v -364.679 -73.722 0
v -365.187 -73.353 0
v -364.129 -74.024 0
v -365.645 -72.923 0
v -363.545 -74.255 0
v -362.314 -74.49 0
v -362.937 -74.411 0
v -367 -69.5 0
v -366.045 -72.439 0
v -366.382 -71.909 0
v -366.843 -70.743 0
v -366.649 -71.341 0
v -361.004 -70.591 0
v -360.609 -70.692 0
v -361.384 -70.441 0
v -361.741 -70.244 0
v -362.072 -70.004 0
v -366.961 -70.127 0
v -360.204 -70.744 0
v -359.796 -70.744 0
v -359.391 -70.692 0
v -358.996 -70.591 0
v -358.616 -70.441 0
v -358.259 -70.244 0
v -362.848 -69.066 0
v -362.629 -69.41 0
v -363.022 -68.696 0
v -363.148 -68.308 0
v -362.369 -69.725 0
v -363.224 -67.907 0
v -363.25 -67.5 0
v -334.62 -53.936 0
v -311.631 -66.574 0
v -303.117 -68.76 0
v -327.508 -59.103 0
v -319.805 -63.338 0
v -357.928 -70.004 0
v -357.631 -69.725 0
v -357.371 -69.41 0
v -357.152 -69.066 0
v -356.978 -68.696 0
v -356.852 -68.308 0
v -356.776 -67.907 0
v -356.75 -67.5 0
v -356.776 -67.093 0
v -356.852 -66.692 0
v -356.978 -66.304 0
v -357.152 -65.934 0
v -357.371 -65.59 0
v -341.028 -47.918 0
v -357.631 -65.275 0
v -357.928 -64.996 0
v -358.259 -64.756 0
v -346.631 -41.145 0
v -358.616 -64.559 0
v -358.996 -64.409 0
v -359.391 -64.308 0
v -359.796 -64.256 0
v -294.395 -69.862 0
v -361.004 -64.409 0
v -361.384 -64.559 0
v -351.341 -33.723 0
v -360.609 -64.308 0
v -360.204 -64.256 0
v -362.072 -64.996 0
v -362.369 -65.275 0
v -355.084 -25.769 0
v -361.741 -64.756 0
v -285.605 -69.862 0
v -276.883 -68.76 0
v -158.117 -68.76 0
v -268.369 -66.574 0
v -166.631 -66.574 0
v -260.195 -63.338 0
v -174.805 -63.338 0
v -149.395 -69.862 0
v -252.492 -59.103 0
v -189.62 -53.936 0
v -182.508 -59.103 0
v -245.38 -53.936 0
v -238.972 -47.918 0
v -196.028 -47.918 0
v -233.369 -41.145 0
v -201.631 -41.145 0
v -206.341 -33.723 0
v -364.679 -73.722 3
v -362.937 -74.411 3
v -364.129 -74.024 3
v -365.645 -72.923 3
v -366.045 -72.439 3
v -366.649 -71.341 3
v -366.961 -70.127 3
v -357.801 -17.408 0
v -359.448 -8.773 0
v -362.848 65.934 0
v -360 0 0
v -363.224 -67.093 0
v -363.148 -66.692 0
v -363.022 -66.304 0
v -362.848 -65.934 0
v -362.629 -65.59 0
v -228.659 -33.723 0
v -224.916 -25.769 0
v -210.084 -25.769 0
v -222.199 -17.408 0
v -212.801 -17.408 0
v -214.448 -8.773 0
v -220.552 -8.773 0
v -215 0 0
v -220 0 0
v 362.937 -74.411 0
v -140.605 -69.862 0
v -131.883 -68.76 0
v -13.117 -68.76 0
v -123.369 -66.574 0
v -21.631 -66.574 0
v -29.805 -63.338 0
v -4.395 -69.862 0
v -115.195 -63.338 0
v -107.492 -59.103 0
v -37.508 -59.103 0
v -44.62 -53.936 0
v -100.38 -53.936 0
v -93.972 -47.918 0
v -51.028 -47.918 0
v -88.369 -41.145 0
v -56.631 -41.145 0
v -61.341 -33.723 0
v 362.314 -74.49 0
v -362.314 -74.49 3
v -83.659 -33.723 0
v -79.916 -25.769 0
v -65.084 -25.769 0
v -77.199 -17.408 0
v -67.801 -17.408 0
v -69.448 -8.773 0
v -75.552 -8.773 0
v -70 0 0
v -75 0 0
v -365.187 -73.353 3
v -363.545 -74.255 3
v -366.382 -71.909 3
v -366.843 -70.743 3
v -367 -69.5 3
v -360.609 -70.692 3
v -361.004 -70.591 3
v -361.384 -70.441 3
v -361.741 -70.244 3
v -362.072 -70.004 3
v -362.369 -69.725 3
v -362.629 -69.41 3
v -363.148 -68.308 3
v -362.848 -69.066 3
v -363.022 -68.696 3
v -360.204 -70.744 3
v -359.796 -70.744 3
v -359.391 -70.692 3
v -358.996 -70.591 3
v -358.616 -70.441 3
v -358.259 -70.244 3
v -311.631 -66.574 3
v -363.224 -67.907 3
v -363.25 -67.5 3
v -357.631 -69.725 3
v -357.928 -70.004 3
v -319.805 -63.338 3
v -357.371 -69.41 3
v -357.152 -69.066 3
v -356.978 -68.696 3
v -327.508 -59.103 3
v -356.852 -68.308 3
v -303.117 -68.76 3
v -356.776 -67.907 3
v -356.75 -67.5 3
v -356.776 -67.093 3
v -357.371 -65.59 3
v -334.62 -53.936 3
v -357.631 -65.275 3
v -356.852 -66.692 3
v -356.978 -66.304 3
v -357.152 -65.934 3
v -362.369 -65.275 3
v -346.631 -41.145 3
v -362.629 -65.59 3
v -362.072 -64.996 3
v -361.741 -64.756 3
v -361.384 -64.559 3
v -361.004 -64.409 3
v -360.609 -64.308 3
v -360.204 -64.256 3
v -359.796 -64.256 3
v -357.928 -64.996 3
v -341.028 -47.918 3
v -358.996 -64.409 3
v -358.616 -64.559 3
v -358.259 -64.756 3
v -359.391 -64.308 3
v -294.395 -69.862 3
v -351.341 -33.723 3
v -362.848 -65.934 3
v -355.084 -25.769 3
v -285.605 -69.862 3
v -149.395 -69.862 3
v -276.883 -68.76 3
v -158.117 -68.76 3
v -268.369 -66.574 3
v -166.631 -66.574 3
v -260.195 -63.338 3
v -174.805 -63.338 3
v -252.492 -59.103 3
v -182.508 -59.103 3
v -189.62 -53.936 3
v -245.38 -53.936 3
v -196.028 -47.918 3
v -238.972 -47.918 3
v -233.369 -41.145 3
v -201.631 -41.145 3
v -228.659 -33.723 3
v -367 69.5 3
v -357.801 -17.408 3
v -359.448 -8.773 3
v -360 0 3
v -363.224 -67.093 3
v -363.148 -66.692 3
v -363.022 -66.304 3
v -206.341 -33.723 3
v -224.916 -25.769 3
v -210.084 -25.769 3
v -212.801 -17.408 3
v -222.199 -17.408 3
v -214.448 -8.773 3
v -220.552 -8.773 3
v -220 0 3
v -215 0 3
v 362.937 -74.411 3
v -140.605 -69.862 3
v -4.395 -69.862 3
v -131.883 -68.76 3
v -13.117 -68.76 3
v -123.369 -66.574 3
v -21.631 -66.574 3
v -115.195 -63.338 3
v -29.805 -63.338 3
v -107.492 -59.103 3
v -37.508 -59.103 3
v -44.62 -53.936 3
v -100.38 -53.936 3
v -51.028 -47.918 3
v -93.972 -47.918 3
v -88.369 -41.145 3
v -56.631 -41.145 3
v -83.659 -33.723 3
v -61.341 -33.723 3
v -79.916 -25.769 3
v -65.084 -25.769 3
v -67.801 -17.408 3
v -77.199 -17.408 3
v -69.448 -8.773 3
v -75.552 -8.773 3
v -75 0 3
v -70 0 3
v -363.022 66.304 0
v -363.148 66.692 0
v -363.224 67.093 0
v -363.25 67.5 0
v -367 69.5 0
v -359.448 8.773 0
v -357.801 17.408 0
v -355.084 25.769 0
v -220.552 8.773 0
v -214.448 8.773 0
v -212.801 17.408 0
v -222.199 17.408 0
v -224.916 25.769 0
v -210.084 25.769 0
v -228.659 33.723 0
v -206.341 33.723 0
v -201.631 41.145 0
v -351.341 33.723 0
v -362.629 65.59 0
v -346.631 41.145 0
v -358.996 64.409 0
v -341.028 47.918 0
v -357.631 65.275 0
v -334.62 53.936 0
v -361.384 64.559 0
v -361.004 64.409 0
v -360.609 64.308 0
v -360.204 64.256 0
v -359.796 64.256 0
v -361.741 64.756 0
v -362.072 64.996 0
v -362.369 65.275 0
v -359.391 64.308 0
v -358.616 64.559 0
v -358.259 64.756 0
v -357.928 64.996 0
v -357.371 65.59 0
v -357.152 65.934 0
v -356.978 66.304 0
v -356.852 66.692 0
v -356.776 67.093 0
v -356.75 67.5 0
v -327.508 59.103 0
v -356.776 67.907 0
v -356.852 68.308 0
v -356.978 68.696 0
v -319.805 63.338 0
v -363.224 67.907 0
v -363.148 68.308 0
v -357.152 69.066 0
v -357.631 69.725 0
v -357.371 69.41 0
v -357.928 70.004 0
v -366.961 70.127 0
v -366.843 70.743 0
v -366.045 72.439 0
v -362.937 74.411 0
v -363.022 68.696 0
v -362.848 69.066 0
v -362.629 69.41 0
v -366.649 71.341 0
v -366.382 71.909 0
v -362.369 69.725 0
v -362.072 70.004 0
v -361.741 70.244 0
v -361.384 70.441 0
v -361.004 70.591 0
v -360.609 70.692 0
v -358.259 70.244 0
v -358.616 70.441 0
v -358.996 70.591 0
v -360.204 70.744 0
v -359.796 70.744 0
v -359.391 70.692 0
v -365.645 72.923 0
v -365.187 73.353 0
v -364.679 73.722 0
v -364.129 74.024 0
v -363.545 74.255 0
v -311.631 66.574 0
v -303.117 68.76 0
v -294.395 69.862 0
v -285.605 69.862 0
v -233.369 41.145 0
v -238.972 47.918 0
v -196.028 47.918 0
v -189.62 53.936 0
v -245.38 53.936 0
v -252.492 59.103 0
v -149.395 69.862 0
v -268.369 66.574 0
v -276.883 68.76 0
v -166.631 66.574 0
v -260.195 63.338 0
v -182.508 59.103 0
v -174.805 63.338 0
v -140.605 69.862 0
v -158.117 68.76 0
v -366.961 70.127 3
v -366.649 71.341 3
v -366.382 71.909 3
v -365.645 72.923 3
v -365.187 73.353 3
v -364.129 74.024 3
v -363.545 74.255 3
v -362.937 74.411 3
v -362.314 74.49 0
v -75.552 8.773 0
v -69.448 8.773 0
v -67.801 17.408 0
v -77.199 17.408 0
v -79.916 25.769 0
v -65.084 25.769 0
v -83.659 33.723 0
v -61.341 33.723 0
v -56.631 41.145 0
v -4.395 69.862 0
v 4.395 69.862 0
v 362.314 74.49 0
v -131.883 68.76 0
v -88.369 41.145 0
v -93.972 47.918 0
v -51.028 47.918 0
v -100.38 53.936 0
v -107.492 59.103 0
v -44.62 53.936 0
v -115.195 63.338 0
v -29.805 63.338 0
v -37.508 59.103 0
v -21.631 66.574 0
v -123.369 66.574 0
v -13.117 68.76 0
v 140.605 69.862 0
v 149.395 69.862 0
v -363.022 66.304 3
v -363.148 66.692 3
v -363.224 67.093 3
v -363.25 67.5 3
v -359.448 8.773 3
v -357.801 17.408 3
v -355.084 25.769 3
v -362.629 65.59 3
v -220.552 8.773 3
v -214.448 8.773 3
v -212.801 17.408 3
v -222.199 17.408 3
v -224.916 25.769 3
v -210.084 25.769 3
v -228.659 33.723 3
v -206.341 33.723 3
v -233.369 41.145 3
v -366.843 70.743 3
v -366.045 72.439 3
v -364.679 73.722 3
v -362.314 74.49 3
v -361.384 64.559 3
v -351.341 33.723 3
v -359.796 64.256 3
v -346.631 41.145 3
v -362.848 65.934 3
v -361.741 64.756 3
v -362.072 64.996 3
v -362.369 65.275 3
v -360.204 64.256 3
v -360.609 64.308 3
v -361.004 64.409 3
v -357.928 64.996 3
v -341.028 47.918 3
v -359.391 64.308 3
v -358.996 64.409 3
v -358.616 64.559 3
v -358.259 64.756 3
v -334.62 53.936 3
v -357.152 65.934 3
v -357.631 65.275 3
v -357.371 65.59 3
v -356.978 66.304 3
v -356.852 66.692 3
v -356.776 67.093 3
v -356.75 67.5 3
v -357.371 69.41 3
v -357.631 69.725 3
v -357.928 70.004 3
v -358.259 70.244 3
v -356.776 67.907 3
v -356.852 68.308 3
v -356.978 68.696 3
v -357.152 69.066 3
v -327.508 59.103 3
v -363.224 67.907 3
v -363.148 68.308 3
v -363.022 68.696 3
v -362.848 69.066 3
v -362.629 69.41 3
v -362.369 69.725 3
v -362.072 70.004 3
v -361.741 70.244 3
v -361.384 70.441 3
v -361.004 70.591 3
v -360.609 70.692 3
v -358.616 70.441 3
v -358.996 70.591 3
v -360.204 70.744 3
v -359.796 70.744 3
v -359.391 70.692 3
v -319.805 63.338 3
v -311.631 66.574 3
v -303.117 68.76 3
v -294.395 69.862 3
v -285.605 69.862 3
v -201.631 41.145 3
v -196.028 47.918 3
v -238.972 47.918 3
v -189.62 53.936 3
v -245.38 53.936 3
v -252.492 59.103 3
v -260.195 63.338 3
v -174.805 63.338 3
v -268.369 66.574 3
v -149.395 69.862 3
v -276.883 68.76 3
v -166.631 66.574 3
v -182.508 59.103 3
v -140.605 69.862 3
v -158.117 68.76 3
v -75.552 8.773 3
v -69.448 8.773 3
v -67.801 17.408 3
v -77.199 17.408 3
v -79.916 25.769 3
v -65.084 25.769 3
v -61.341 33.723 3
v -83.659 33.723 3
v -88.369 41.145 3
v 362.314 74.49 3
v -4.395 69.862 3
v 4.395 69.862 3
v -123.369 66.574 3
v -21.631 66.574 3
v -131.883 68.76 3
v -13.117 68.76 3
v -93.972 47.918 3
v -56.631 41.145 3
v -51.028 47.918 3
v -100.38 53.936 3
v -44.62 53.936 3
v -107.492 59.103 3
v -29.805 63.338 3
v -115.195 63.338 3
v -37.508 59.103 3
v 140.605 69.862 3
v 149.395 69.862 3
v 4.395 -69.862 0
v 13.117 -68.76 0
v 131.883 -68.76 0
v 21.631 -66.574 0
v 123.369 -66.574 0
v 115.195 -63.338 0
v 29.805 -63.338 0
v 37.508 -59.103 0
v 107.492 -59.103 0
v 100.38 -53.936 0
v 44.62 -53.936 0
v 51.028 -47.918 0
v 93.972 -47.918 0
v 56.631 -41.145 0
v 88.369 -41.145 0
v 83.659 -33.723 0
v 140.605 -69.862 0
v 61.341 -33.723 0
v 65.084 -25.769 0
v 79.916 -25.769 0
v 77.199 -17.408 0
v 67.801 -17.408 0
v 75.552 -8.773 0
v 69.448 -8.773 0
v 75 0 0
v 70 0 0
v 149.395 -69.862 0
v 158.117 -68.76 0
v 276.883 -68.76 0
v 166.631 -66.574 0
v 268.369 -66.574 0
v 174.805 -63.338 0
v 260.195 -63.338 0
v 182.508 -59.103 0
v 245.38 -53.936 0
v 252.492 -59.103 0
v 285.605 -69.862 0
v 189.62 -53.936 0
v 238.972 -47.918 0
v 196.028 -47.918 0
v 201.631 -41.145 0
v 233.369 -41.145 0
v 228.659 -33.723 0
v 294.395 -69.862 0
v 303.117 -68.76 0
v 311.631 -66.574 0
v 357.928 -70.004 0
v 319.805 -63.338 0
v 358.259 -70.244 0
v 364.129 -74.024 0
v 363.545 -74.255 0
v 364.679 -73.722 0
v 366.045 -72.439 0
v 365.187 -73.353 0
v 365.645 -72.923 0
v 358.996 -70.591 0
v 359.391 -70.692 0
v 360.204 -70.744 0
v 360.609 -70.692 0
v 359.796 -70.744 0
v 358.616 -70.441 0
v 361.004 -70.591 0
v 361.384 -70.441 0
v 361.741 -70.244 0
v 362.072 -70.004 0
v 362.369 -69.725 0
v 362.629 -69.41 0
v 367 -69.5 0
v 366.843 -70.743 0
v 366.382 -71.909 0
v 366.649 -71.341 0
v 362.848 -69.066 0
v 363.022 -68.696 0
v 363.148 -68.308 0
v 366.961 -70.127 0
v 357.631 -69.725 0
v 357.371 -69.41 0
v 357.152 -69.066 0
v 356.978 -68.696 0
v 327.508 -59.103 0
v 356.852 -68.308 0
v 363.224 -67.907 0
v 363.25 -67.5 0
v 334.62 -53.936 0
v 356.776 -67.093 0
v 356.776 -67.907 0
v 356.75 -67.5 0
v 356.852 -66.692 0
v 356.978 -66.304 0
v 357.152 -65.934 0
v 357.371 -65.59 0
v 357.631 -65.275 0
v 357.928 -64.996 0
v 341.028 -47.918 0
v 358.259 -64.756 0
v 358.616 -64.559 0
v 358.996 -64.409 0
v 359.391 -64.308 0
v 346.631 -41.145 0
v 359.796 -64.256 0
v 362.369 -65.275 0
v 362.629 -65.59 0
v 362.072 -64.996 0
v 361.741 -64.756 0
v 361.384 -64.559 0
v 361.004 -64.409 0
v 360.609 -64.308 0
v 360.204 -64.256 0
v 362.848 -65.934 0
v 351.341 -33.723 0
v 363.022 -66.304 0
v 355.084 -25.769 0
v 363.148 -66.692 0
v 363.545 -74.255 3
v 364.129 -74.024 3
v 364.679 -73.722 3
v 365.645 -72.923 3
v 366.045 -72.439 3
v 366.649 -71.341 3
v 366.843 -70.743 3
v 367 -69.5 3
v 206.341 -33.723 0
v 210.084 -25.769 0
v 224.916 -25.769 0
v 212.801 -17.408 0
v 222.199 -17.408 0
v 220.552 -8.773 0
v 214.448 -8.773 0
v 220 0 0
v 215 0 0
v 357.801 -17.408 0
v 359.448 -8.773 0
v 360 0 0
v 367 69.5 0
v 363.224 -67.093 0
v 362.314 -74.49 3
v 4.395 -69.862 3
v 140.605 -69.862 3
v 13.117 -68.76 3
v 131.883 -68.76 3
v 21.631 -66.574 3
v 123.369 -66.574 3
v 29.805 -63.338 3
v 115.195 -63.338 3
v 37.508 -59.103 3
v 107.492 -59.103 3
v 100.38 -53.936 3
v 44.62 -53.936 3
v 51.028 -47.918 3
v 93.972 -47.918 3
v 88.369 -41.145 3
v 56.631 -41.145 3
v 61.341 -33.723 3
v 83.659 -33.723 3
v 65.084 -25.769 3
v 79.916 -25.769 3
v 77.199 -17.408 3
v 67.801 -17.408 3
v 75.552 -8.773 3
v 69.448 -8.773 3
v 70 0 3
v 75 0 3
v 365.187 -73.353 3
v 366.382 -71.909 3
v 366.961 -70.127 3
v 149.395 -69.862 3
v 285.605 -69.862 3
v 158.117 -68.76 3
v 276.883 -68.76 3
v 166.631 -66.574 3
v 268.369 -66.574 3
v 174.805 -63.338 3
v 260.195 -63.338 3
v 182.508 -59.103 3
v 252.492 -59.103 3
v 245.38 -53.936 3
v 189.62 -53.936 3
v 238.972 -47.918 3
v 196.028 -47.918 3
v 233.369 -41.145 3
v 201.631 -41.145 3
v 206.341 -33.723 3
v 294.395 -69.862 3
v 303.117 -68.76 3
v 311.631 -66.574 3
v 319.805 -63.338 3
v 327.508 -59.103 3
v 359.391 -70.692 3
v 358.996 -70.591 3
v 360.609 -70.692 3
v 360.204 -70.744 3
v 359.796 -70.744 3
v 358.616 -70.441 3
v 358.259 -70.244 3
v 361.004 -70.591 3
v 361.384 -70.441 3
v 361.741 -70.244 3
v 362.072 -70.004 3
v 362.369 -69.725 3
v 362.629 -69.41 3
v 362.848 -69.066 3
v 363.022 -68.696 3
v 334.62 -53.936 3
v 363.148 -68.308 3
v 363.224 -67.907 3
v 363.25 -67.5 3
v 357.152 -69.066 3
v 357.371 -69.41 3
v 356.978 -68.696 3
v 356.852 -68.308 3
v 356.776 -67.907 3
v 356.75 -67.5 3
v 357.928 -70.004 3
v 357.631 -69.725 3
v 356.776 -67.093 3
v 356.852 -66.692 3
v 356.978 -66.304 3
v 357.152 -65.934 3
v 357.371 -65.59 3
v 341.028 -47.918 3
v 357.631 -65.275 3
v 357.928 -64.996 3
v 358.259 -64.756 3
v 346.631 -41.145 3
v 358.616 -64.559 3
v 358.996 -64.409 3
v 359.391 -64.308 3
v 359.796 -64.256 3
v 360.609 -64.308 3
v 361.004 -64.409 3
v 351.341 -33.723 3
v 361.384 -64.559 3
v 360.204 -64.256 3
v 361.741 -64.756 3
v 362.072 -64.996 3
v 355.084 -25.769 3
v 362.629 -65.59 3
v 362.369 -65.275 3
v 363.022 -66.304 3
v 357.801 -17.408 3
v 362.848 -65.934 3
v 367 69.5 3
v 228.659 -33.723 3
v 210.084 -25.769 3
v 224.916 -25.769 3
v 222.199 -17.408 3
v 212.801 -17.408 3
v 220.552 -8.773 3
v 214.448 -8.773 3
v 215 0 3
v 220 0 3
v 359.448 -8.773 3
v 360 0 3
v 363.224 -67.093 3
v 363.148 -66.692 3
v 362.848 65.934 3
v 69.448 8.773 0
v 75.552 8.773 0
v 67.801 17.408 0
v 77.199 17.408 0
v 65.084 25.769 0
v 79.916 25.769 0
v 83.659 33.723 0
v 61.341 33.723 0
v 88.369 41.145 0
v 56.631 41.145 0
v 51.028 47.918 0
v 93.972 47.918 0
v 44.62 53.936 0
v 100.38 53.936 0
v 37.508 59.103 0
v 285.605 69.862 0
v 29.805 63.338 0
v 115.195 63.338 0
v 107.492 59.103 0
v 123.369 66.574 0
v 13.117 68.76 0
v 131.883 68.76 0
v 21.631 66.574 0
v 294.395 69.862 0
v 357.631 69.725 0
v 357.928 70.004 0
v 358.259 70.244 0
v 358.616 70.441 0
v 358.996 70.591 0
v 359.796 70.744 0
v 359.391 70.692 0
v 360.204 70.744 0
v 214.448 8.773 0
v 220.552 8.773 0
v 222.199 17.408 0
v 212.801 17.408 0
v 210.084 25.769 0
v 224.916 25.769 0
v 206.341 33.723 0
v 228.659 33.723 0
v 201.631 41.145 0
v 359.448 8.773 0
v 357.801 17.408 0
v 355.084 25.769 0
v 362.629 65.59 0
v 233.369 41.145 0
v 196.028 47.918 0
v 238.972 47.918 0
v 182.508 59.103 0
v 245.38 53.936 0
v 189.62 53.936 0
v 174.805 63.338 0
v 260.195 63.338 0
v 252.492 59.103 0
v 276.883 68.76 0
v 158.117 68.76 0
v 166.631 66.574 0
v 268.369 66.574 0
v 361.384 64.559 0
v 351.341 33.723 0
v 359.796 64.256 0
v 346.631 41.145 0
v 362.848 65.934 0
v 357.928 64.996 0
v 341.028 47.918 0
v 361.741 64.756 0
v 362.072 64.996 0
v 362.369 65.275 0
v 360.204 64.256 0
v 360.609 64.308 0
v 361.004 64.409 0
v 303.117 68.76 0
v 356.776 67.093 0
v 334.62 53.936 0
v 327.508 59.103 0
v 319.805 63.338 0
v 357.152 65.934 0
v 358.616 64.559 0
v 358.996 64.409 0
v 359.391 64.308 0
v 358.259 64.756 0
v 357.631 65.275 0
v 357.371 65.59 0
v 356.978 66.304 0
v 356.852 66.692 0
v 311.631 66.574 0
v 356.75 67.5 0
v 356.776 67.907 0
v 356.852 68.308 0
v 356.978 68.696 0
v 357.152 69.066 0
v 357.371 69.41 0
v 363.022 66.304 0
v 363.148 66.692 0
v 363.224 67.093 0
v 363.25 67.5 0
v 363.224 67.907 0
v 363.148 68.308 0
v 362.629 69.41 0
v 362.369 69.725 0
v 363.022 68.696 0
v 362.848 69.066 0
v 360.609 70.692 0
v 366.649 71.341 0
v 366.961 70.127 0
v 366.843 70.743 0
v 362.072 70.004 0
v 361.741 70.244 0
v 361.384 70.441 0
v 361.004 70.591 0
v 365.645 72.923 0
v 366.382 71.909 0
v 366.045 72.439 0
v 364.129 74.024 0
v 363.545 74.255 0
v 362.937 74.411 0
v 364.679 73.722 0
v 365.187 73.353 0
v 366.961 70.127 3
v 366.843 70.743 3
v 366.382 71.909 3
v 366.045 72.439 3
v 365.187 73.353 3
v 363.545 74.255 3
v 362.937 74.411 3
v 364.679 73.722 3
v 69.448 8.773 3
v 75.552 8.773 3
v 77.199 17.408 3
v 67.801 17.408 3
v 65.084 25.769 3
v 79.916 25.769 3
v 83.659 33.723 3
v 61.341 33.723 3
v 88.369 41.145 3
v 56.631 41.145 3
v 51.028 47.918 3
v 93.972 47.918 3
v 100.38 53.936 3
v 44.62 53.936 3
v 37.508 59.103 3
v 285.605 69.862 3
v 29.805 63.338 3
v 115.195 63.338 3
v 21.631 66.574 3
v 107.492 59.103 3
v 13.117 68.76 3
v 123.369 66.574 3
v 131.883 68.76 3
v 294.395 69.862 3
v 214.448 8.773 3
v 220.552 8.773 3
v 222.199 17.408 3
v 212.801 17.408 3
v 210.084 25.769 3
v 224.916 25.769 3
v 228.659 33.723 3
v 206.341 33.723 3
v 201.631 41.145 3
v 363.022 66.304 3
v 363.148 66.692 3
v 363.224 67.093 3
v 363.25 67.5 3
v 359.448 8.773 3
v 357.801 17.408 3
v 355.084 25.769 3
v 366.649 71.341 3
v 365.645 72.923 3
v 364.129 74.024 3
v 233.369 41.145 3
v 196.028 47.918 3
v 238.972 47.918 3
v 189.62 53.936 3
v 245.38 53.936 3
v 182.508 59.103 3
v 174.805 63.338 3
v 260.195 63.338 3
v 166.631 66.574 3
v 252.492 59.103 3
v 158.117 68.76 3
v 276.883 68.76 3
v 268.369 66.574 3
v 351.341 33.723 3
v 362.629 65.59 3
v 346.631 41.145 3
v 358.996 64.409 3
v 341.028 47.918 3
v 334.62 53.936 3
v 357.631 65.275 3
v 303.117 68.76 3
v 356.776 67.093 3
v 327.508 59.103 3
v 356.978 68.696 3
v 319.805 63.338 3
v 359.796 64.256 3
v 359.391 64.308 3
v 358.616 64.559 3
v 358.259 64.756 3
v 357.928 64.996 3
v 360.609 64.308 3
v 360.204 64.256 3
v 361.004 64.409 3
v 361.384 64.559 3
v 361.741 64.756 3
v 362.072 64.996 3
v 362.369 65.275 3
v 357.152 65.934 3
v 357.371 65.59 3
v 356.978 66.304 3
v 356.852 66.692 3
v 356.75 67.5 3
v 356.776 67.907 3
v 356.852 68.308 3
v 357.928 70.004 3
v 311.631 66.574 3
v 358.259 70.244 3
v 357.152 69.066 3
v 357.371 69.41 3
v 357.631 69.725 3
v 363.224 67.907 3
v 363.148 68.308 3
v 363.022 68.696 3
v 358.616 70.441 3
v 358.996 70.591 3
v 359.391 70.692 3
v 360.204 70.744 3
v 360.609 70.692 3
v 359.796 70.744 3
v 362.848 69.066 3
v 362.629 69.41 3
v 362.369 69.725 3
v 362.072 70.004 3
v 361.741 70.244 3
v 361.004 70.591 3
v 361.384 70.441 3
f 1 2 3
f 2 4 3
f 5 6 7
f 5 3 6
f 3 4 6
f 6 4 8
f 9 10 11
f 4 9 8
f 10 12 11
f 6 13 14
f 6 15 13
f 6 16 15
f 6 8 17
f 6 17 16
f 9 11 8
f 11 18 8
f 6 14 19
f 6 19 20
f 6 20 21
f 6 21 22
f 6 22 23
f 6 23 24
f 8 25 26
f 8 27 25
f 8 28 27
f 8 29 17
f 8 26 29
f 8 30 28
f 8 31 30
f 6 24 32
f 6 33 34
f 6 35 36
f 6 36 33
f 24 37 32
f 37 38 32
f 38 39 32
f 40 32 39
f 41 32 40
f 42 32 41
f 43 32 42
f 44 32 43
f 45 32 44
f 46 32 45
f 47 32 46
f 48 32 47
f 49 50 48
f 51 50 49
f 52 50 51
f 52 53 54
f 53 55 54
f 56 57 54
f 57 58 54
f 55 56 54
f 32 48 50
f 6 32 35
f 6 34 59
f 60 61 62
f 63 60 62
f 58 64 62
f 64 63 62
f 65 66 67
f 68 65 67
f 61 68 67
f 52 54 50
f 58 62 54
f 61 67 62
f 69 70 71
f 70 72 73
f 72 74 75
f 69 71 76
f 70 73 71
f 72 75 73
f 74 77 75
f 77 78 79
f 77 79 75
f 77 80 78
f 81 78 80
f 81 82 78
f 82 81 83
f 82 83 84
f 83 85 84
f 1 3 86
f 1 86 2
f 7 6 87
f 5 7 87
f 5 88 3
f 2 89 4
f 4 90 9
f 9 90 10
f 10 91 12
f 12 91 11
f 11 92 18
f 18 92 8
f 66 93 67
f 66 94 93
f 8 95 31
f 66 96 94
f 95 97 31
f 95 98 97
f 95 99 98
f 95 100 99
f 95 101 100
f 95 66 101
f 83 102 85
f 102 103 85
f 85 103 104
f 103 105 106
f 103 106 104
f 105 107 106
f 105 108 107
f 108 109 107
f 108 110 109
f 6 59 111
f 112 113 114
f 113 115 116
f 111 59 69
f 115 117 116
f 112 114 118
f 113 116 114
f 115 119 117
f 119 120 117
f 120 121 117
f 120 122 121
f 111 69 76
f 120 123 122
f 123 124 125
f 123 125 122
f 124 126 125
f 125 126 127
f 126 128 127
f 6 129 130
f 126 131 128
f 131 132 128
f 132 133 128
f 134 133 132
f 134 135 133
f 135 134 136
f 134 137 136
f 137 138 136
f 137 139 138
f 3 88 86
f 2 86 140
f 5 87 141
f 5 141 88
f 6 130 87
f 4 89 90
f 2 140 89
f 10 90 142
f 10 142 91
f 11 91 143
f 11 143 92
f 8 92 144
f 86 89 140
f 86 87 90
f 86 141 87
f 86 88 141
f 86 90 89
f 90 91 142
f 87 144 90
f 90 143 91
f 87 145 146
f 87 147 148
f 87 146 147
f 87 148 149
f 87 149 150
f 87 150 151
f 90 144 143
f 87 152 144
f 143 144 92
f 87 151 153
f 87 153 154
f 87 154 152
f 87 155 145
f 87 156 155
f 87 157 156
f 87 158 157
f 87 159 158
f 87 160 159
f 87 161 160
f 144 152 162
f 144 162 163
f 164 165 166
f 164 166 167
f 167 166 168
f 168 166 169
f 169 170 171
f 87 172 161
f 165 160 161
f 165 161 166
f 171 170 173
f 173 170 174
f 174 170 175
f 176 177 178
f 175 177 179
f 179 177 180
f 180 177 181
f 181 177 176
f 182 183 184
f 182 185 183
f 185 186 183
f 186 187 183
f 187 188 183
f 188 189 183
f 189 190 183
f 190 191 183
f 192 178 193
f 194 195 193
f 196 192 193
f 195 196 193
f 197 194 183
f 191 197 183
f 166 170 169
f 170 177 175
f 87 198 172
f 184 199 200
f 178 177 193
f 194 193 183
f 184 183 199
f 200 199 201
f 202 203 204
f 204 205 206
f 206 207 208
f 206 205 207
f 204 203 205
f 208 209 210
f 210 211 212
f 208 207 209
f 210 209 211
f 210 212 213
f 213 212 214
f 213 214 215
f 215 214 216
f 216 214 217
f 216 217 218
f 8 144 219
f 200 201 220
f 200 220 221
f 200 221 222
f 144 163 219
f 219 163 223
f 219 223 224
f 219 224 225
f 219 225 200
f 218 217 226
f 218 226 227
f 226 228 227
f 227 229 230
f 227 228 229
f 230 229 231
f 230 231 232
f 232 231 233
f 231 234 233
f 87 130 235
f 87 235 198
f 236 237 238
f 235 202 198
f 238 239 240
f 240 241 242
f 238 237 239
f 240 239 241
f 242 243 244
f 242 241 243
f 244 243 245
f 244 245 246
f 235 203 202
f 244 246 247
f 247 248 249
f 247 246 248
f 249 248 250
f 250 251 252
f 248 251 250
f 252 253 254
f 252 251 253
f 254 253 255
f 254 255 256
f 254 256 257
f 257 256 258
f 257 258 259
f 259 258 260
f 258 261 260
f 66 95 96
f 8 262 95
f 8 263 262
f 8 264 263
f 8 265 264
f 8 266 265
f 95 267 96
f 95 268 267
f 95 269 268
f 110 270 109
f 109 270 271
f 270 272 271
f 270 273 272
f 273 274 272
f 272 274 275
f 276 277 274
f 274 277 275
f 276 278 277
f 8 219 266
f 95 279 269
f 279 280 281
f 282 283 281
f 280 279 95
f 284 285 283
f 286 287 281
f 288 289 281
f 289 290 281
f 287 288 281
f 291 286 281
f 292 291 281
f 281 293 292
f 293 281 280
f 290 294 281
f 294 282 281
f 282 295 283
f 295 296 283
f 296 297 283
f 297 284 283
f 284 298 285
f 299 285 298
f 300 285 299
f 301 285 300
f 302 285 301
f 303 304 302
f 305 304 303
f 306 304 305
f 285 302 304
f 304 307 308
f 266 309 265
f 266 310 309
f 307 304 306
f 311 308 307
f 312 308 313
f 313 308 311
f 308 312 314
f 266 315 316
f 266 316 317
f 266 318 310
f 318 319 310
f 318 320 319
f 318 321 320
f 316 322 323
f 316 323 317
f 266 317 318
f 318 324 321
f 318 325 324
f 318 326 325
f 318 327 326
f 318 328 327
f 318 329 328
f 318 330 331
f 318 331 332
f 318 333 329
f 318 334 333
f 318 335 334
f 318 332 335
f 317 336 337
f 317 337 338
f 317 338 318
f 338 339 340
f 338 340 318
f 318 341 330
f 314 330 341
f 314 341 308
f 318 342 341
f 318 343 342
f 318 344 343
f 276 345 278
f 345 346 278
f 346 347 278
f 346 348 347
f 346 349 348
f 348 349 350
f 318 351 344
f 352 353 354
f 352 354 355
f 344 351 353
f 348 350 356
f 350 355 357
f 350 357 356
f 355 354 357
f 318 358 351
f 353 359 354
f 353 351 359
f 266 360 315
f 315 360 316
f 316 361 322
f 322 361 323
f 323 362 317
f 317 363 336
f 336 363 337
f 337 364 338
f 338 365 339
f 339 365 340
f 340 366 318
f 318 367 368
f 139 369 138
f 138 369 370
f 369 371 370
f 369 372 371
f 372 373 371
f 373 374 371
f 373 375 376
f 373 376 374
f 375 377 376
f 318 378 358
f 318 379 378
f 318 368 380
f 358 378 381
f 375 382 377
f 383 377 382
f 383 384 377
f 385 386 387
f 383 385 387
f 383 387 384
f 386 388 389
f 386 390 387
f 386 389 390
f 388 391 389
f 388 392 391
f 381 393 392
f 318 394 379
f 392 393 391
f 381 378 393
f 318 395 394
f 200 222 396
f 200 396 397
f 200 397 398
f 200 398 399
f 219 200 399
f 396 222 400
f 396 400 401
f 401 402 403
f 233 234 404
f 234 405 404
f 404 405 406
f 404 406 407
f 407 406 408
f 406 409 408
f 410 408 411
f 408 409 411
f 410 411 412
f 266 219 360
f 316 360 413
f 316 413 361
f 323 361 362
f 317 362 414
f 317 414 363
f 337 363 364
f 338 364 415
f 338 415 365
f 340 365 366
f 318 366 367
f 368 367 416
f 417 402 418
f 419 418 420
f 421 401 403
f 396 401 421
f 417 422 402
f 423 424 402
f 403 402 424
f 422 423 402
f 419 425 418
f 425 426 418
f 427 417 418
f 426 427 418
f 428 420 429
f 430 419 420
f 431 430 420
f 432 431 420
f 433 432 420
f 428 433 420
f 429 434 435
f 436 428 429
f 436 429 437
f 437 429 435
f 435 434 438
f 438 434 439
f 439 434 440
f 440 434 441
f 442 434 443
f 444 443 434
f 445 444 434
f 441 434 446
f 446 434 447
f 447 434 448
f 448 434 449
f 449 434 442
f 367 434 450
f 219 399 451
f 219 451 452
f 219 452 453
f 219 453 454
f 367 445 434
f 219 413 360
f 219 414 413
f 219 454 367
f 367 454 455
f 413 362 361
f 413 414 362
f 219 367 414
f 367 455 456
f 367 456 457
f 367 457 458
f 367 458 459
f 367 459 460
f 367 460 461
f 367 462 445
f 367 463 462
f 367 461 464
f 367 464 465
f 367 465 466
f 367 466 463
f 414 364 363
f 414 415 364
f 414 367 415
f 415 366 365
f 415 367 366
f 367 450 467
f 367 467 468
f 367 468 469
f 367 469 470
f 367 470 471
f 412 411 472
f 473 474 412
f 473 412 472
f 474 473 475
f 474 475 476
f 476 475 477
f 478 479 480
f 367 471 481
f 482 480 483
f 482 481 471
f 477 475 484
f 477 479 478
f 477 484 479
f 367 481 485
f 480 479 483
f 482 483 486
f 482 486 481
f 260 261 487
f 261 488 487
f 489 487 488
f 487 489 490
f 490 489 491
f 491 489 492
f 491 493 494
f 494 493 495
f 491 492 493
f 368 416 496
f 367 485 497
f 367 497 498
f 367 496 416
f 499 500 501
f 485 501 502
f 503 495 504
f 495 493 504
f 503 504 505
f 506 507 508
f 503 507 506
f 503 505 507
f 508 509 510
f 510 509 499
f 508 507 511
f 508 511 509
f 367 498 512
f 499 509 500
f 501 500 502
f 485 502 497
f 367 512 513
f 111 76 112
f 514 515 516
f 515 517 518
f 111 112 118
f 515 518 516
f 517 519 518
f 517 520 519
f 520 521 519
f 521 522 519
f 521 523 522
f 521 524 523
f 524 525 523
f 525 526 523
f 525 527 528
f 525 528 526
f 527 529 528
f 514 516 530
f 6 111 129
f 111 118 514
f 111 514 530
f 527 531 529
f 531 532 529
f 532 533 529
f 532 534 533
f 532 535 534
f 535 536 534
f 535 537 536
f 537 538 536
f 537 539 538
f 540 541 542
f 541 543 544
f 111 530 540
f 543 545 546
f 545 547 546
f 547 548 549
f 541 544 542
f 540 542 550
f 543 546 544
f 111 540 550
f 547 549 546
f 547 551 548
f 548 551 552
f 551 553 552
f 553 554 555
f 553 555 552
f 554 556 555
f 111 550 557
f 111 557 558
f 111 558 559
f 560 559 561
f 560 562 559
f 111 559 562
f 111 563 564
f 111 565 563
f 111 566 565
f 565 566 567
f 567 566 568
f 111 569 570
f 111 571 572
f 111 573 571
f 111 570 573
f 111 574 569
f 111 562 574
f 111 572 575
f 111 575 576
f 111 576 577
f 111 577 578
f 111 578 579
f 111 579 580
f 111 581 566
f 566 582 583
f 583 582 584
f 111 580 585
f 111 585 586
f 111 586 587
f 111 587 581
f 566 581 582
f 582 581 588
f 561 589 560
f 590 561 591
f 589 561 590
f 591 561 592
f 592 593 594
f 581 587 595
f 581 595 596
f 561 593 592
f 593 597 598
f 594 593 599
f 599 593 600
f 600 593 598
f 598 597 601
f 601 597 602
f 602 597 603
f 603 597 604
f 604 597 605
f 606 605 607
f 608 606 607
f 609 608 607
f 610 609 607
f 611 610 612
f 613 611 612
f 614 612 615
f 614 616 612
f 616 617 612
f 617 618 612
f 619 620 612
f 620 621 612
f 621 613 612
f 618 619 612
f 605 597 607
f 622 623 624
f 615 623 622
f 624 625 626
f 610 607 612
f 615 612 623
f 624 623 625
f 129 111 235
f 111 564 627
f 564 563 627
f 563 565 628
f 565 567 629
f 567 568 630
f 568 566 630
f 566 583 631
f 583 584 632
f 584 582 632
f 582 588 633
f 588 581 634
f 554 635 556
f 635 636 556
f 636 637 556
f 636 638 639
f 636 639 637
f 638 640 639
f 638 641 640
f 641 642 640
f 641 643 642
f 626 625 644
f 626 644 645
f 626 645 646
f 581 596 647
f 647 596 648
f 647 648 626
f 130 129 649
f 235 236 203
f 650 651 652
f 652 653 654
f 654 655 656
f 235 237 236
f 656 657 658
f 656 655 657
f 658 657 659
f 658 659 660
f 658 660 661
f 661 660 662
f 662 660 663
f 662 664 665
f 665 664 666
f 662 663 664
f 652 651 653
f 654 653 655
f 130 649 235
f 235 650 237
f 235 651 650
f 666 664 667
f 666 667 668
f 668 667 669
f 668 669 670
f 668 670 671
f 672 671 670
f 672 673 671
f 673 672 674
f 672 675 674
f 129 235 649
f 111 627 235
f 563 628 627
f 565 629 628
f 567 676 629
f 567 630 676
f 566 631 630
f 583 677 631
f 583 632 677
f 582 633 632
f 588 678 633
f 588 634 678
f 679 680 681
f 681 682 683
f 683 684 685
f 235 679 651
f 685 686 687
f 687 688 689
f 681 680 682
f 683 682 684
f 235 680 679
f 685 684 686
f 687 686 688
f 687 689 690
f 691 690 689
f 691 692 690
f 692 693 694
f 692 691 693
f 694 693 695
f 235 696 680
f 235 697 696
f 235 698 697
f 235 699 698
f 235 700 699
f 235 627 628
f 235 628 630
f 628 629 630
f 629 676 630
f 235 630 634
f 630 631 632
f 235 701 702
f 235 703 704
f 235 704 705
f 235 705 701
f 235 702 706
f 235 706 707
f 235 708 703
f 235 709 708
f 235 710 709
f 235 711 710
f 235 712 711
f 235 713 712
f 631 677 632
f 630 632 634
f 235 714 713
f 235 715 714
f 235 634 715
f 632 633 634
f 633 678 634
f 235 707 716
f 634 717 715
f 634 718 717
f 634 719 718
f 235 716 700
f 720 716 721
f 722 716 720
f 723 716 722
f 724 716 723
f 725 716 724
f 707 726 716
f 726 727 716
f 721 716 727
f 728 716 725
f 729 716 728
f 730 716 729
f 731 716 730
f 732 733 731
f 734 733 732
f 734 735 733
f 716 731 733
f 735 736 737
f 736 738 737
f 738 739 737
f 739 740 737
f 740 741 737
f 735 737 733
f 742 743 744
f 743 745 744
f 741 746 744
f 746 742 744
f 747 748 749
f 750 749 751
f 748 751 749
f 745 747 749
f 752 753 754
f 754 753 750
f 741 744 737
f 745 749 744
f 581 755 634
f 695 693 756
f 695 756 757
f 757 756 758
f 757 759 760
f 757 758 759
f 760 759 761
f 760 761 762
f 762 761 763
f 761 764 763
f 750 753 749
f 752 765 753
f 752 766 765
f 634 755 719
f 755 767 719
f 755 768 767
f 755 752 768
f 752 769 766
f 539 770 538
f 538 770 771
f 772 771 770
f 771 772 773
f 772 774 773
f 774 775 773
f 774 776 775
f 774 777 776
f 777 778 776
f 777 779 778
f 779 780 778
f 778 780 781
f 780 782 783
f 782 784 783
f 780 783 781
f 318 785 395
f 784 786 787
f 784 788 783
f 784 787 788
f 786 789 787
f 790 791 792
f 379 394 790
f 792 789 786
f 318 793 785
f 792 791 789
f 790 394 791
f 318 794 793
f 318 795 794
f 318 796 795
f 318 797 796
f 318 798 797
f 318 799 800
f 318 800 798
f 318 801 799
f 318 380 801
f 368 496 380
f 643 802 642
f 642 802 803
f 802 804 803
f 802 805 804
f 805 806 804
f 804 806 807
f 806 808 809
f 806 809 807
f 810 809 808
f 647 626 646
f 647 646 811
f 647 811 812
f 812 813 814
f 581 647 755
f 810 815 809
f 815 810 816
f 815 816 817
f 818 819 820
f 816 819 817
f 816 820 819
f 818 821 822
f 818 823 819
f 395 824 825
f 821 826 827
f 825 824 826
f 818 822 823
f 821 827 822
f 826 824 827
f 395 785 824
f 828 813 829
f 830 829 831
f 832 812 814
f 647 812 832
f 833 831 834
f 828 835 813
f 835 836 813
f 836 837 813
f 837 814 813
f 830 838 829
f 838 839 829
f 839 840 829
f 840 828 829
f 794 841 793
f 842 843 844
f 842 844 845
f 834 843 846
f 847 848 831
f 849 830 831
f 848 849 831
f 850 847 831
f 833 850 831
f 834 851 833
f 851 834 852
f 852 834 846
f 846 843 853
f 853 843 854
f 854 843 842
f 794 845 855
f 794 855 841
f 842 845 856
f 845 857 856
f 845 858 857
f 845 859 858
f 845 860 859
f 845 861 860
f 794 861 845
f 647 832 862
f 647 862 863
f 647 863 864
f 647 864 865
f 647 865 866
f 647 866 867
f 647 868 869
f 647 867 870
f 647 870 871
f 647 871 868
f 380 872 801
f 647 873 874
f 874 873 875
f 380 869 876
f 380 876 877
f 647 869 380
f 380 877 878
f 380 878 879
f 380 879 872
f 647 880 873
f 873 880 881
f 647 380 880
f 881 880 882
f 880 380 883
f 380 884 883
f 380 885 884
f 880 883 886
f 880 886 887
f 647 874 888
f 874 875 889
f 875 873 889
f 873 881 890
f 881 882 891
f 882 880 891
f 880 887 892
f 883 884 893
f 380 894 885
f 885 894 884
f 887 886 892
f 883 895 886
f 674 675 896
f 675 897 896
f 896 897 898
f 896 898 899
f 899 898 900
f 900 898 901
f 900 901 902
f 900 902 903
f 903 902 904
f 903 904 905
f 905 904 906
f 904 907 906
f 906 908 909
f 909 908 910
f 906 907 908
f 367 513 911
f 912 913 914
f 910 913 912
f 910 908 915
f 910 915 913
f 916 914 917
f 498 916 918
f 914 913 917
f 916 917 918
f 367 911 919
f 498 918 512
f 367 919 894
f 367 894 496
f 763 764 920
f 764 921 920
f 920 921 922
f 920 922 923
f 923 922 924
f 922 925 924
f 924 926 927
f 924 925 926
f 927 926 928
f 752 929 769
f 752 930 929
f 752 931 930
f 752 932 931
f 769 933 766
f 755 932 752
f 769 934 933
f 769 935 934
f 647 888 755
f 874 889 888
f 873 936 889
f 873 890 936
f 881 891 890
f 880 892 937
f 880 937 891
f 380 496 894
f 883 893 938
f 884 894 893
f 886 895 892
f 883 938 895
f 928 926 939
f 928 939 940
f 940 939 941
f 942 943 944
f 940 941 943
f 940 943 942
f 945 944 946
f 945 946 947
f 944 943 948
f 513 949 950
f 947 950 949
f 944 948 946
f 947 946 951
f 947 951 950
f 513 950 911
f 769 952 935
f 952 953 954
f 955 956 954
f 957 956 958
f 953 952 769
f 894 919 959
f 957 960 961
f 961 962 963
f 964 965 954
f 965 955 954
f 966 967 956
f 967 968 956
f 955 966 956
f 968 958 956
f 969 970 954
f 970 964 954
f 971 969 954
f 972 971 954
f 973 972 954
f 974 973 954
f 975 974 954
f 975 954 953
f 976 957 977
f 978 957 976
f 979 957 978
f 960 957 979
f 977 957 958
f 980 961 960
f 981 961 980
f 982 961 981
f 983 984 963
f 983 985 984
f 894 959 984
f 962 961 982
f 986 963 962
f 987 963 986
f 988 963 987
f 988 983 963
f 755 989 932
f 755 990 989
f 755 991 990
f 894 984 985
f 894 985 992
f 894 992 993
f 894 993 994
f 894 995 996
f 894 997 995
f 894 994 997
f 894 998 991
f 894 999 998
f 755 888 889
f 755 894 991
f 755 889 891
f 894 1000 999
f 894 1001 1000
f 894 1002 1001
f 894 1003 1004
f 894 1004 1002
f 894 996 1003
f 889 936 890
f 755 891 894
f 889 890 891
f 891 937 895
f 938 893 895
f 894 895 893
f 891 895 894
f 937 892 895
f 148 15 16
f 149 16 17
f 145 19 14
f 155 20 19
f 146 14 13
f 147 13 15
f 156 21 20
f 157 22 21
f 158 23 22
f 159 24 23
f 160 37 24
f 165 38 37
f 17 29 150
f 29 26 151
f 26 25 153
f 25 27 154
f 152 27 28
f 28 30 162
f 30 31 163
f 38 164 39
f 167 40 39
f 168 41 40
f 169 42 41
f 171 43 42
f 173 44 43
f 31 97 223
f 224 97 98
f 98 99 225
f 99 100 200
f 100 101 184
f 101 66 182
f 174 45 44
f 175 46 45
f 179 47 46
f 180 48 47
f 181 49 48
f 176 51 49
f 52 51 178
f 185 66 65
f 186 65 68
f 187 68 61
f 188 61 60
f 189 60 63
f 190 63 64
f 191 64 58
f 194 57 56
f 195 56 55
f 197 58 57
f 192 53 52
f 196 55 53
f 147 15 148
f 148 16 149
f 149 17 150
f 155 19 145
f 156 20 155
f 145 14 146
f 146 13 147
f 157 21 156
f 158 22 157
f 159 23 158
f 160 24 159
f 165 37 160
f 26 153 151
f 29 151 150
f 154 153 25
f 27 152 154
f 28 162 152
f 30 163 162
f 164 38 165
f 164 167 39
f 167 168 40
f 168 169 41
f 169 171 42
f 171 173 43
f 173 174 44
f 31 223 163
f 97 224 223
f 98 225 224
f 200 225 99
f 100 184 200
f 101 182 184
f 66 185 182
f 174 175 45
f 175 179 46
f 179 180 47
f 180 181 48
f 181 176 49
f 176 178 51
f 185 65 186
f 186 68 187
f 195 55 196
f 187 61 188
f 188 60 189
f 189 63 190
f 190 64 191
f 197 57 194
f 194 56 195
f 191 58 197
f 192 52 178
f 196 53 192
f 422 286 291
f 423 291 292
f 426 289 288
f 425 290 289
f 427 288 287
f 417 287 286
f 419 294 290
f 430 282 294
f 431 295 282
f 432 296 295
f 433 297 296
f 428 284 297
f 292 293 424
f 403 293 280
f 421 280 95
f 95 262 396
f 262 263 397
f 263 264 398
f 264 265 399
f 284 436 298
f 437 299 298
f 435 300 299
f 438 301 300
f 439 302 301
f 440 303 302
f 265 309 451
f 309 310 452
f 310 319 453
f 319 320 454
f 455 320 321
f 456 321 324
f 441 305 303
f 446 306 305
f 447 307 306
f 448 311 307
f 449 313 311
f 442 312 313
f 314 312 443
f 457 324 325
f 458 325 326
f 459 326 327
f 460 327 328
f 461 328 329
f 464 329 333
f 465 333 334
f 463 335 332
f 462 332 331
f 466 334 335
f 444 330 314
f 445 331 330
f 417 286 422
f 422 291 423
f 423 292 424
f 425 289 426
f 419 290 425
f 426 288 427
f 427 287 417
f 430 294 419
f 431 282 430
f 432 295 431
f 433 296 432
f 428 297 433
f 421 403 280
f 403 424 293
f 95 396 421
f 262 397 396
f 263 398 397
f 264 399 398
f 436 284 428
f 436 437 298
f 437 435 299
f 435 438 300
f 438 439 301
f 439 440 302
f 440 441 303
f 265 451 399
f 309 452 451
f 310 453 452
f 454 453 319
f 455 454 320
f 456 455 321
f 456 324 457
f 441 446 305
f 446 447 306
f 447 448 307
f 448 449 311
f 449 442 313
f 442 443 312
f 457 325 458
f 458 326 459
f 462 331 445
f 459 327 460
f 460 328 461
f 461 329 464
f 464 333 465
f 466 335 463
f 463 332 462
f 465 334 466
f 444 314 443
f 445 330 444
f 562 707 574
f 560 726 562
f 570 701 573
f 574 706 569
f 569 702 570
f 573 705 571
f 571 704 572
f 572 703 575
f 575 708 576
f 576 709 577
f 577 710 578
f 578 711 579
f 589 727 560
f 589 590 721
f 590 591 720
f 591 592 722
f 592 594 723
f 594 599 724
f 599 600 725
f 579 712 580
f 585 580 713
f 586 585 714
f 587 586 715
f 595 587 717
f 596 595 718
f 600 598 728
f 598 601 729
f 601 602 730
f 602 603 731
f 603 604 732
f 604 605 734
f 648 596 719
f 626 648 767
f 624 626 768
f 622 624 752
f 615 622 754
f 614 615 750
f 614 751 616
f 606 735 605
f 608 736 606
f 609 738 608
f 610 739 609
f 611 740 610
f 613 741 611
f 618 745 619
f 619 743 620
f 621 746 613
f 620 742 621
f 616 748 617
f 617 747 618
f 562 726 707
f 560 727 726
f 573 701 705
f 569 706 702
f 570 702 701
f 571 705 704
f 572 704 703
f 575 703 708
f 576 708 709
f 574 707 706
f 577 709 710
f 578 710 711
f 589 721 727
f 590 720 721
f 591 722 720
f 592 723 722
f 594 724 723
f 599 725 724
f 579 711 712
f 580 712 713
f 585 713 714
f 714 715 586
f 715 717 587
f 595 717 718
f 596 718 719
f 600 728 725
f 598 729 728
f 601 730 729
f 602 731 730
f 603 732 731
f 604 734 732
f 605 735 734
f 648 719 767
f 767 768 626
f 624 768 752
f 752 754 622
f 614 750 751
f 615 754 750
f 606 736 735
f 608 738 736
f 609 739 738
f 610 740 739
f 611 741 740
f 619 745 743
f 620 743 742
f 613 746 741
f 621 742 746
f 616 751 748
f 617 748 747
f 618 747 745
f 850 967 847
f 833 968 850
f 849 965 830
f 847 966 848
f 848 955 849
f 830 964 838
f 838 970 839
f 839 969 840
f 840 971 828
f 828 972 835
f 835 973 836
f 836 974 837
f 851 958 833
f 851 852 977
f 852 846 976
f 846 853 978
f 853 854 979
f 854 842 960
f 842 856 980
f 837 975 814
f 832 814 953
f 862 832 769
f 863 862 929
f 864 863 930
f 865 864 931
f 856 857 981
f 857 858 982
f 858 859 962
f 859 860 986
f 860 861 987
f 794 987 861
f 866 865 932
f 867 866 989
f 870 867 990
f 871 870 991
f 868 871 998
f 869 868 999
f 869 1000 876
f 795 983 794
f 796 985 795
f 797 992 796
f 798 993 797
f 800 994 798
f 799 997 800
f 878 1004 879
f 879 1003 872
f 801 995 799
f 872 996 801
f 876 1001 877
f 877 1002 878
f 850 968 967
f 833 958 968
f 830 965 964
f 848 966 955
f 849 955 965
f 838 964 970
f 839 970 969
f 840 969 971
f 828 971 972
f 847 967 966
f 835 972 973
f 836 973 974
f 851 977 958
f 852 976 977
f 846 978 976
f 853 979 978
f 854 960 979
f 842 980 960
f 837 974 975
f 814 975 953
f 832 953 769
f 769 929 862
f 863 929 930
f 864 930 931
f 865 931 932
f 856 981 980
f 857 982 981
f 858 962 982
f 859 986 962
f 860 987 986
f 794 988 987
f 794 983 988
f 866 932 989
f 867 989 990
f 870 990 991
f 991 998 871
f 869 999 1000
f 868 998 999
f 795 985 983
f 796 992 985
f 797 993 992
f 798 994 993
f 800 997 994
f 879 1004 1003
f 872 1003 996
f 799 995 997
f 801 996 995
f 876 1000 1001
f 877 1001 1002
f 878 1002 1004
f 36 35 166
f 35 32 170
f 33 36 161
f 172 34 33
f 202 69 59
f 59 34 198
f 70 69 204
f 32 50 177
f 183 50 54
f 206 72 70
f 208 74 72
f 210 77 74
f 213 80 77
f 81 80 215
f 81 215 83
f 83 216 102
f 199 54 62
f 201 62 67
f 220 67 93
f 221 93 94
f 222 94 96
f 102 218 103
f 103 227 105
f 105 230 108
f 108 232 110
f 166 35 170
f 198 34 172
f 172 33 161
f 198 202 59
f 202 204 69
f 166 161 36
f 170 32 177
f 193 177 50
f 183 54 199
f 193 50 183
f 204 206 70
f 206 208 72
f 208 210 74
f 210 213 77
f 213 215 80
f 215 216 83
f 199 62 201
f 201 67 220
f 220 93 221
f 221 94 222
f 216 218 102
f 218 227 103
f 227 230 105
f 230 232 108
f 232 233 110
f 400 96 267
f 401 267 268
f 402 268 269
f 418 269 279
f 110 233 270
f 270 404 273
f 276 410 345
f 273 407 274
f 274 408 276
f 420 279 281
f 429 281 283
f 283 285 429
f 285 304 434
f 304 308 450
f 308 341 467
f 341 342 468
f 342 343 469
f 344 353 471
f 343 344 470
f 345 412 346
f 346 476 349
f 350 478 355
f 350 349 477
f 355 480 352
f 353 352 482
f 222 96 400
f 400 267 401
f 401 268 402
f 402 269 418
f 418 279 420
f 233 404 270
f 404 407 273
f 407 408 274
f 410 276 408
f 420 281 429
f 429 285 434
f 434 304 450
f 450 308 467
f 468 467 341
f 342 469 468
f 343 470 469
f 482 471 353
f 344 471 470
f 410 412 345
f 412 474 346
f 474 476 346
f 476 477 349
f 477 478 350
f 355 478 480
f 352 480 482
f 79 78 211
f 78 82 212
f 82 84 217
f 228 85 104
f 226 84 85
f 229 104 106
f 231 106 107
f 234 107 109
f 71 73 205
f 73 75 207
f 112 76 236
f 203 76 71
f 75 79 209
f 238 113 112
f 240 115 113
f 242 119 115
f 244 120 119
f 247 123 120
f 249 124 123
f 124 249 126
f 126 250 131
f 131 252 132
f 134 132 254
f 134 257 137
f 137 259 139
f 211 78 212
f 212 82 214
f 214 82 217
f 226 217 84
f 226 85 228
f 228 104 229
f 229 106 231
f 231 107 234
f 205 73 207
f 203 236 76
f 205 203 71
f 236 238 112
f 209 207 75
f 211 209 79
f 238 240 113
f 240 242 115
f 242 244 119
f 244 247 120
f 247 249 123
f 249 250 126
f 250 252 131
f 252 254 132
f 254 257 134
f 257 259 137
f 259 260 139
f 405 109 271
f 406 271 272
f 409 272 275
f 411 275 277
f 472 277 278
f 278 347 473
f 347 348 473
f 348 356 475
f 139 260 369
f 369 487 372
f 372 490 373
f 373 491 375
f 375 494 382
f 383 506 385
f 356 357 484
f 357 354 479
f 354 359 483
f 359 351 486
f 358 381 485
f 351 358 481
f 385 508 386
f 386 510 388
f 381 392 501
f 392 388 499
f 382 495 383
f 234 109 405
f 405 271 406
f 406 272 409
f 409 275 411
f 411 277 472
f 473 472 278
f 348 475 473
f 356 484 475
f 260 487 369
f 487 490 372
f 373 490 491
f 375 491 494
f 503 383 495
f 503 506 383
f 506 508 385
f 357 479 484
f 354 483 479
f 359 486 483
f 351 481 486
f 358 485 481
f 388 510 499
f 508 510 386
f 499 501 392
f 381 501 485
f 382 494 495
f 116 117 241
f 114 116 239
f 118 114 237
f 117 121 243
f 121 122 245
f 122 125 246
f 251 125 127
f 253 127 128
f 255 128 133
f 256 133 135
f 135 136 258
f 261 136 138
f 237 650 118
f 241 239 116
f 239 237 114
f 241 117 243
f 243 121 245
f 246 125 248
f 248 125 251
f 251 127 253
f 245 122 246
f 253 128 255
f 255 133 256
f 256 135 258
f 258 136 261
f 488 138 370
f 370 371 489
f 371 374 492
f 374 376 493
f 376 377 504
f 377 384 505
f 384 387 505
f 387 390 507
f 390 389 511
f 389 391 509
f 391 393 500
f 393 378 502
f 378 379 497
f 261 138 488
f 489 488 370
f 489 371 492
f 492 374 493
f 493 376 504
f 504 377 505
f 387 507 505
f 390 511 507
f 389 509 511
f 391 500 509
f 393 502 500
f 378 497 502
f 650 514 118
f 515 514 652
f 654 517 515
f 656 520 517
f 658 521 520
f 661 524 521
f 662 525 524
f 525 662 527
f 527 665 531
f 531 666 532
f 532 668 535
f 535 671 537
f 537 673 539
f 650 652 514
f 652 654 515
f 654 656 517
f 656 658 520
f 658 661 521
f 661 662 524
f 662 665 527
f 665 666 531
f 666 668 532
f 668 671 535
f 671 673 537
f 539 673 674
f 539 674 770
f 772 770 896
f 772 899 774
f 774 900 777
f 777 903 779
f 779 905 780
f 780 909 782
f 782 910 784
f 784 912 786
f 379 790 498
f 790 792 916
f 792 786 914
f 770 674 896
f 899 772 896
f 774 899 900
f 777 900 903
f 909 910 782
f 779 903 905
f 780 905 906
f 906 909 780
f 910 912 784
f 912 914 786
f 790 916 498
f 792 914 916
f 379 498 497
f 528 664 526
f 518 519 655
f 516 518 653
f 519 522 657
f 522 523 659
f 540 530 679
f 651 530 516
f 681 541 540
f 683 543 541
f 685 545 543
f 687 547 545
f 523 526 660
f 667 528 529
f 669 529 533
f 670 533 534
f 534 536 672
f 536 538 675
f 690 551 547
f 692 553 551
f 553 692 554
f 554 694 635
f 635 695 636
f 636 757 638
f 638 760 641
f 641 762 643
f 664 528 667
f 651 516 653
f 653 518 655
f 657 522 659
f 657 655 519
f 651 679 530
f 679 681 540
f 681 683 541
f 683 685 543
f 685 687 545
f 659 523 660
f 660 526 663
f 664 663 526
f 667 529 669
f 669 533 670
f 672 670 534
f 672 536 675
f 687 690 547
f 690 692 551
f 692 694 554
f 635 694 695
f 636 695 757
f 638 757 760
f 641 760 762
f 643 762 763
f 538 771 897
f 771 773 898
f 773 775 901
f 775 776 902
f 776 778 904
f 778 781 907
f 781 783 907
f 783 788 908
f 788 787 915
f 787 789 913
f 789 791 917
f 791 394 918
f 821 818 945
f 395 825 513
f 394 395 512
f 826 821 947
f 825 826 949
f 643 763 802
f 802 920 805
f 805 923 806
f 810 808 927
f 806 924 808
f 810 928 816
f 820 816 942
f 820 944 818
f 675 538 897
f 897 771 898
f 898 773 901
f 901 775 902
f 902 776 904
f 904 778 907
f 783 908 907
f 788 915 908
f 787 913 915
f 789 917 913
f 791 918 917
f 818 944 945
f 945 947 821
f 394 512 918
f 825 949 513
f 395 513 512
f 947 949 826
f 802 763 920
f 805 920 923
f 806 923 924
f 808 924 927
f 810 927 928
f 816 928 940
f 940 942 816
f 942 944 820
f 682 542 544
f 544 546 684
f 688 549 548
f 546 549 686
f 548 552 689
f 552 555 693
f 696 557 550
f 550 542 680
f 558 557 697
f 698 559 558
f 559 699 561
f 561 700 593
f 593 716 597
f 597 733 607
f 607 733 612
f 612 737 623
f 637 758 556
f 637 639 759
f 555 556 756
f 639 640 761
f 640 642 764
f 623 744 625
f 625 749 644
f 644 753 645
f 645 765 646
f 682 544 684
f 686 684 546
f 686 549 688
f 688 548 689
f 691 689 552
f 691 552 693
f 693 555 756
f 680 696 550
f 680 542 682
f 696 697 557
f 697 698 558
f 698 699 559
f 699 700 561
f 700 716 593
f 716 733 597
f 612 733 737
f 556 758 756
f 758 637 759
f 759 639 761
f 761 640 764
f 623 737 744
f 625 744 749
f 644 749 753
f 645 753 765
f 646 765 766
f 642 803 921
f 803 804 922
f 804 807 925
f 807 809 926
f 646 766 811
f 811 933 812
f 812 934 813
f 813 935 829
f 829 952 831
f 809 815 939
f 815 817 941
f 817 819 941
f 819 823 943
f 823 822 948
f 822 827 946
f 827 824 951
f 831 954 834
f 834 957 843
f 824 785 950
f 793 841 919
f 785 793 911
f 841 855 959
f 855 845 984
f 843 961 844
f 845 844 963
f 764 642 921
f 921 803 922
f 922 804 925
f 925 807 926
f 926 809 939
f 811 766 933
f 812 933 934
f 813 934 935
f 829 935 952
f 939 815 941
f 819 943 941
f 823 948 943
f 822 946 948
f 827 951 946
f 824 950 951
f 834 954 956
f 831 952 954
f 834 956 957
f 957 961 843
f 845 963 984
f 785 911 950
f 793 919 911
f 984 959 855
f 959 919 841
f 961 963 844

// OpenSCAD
$fn = 50;

difference() {
	union() {
		hull() {
			translate(v = [-362.0, 69.5, 0]) {
				cylinder(h = 3, r = 5);
			}
			translate(v = [362.0, 69.5, 0]) {
				cylinder(h = 3, r = 5);
			}
			translate(v = [-362.0, -69.5, 0]) {
				cylinder(h = 3, r = 5);
			}
			translate(v = [362.0, -69.5, 0]) {
				cylinder(h = 3, r = 5);
			}
		}
	}
	union() {
		translate(v = [-360.0, -67.5, -100.0]) {
			cylinder(h = 200, r = 3.25);
		}
		translate(v = [-360.0, 67.5, -100.0]) {
			cylinder(h = 200, r = 3.25);
		}
		translate(v = [360.0, -67.5, -100.0]) {
			cylinder(h = 200, r = 3.25);
		}
		translate(v = [360.0, 67.5, -100.0]) {
			cylinder(h = 200, r = 3.25);
		}
		translate(v = [-360.0, -67.5, -100.0]) {
			cylinder(h = 200, r = 1.8);
		}
		translate(v = [-360.0, 67.5, -100.0]) {
			cylinder(h = 200, r = 1.8);
		}
		translate(v = [360.0, -67.5, -100.0]) {
			cylinder(h = 200, r = 1.8);
		}
		translate(v = [360.0, 67.5, -100.0]) {
			cylinder(h = 200, r = 1.8);
		}
		translate(v = [-290.0, 0, 0.0]) {
			cylinder(h = 3, r = 70.0);
		}
		translate(v = [-145.0, 0, 0.0]) {
			cylinder(h = 3, r = 70.0);
		}
		cylinder(h = 3, r = 70.0);
		translate(v = [145.0, 0, 0.0]) {
			cylinder(h = 3, r = 70.0);
		}
		translate(v = [290.0, 0, 0.0]) {
			cylinder(h = 3, r = 70.0);
		}
	}
}
